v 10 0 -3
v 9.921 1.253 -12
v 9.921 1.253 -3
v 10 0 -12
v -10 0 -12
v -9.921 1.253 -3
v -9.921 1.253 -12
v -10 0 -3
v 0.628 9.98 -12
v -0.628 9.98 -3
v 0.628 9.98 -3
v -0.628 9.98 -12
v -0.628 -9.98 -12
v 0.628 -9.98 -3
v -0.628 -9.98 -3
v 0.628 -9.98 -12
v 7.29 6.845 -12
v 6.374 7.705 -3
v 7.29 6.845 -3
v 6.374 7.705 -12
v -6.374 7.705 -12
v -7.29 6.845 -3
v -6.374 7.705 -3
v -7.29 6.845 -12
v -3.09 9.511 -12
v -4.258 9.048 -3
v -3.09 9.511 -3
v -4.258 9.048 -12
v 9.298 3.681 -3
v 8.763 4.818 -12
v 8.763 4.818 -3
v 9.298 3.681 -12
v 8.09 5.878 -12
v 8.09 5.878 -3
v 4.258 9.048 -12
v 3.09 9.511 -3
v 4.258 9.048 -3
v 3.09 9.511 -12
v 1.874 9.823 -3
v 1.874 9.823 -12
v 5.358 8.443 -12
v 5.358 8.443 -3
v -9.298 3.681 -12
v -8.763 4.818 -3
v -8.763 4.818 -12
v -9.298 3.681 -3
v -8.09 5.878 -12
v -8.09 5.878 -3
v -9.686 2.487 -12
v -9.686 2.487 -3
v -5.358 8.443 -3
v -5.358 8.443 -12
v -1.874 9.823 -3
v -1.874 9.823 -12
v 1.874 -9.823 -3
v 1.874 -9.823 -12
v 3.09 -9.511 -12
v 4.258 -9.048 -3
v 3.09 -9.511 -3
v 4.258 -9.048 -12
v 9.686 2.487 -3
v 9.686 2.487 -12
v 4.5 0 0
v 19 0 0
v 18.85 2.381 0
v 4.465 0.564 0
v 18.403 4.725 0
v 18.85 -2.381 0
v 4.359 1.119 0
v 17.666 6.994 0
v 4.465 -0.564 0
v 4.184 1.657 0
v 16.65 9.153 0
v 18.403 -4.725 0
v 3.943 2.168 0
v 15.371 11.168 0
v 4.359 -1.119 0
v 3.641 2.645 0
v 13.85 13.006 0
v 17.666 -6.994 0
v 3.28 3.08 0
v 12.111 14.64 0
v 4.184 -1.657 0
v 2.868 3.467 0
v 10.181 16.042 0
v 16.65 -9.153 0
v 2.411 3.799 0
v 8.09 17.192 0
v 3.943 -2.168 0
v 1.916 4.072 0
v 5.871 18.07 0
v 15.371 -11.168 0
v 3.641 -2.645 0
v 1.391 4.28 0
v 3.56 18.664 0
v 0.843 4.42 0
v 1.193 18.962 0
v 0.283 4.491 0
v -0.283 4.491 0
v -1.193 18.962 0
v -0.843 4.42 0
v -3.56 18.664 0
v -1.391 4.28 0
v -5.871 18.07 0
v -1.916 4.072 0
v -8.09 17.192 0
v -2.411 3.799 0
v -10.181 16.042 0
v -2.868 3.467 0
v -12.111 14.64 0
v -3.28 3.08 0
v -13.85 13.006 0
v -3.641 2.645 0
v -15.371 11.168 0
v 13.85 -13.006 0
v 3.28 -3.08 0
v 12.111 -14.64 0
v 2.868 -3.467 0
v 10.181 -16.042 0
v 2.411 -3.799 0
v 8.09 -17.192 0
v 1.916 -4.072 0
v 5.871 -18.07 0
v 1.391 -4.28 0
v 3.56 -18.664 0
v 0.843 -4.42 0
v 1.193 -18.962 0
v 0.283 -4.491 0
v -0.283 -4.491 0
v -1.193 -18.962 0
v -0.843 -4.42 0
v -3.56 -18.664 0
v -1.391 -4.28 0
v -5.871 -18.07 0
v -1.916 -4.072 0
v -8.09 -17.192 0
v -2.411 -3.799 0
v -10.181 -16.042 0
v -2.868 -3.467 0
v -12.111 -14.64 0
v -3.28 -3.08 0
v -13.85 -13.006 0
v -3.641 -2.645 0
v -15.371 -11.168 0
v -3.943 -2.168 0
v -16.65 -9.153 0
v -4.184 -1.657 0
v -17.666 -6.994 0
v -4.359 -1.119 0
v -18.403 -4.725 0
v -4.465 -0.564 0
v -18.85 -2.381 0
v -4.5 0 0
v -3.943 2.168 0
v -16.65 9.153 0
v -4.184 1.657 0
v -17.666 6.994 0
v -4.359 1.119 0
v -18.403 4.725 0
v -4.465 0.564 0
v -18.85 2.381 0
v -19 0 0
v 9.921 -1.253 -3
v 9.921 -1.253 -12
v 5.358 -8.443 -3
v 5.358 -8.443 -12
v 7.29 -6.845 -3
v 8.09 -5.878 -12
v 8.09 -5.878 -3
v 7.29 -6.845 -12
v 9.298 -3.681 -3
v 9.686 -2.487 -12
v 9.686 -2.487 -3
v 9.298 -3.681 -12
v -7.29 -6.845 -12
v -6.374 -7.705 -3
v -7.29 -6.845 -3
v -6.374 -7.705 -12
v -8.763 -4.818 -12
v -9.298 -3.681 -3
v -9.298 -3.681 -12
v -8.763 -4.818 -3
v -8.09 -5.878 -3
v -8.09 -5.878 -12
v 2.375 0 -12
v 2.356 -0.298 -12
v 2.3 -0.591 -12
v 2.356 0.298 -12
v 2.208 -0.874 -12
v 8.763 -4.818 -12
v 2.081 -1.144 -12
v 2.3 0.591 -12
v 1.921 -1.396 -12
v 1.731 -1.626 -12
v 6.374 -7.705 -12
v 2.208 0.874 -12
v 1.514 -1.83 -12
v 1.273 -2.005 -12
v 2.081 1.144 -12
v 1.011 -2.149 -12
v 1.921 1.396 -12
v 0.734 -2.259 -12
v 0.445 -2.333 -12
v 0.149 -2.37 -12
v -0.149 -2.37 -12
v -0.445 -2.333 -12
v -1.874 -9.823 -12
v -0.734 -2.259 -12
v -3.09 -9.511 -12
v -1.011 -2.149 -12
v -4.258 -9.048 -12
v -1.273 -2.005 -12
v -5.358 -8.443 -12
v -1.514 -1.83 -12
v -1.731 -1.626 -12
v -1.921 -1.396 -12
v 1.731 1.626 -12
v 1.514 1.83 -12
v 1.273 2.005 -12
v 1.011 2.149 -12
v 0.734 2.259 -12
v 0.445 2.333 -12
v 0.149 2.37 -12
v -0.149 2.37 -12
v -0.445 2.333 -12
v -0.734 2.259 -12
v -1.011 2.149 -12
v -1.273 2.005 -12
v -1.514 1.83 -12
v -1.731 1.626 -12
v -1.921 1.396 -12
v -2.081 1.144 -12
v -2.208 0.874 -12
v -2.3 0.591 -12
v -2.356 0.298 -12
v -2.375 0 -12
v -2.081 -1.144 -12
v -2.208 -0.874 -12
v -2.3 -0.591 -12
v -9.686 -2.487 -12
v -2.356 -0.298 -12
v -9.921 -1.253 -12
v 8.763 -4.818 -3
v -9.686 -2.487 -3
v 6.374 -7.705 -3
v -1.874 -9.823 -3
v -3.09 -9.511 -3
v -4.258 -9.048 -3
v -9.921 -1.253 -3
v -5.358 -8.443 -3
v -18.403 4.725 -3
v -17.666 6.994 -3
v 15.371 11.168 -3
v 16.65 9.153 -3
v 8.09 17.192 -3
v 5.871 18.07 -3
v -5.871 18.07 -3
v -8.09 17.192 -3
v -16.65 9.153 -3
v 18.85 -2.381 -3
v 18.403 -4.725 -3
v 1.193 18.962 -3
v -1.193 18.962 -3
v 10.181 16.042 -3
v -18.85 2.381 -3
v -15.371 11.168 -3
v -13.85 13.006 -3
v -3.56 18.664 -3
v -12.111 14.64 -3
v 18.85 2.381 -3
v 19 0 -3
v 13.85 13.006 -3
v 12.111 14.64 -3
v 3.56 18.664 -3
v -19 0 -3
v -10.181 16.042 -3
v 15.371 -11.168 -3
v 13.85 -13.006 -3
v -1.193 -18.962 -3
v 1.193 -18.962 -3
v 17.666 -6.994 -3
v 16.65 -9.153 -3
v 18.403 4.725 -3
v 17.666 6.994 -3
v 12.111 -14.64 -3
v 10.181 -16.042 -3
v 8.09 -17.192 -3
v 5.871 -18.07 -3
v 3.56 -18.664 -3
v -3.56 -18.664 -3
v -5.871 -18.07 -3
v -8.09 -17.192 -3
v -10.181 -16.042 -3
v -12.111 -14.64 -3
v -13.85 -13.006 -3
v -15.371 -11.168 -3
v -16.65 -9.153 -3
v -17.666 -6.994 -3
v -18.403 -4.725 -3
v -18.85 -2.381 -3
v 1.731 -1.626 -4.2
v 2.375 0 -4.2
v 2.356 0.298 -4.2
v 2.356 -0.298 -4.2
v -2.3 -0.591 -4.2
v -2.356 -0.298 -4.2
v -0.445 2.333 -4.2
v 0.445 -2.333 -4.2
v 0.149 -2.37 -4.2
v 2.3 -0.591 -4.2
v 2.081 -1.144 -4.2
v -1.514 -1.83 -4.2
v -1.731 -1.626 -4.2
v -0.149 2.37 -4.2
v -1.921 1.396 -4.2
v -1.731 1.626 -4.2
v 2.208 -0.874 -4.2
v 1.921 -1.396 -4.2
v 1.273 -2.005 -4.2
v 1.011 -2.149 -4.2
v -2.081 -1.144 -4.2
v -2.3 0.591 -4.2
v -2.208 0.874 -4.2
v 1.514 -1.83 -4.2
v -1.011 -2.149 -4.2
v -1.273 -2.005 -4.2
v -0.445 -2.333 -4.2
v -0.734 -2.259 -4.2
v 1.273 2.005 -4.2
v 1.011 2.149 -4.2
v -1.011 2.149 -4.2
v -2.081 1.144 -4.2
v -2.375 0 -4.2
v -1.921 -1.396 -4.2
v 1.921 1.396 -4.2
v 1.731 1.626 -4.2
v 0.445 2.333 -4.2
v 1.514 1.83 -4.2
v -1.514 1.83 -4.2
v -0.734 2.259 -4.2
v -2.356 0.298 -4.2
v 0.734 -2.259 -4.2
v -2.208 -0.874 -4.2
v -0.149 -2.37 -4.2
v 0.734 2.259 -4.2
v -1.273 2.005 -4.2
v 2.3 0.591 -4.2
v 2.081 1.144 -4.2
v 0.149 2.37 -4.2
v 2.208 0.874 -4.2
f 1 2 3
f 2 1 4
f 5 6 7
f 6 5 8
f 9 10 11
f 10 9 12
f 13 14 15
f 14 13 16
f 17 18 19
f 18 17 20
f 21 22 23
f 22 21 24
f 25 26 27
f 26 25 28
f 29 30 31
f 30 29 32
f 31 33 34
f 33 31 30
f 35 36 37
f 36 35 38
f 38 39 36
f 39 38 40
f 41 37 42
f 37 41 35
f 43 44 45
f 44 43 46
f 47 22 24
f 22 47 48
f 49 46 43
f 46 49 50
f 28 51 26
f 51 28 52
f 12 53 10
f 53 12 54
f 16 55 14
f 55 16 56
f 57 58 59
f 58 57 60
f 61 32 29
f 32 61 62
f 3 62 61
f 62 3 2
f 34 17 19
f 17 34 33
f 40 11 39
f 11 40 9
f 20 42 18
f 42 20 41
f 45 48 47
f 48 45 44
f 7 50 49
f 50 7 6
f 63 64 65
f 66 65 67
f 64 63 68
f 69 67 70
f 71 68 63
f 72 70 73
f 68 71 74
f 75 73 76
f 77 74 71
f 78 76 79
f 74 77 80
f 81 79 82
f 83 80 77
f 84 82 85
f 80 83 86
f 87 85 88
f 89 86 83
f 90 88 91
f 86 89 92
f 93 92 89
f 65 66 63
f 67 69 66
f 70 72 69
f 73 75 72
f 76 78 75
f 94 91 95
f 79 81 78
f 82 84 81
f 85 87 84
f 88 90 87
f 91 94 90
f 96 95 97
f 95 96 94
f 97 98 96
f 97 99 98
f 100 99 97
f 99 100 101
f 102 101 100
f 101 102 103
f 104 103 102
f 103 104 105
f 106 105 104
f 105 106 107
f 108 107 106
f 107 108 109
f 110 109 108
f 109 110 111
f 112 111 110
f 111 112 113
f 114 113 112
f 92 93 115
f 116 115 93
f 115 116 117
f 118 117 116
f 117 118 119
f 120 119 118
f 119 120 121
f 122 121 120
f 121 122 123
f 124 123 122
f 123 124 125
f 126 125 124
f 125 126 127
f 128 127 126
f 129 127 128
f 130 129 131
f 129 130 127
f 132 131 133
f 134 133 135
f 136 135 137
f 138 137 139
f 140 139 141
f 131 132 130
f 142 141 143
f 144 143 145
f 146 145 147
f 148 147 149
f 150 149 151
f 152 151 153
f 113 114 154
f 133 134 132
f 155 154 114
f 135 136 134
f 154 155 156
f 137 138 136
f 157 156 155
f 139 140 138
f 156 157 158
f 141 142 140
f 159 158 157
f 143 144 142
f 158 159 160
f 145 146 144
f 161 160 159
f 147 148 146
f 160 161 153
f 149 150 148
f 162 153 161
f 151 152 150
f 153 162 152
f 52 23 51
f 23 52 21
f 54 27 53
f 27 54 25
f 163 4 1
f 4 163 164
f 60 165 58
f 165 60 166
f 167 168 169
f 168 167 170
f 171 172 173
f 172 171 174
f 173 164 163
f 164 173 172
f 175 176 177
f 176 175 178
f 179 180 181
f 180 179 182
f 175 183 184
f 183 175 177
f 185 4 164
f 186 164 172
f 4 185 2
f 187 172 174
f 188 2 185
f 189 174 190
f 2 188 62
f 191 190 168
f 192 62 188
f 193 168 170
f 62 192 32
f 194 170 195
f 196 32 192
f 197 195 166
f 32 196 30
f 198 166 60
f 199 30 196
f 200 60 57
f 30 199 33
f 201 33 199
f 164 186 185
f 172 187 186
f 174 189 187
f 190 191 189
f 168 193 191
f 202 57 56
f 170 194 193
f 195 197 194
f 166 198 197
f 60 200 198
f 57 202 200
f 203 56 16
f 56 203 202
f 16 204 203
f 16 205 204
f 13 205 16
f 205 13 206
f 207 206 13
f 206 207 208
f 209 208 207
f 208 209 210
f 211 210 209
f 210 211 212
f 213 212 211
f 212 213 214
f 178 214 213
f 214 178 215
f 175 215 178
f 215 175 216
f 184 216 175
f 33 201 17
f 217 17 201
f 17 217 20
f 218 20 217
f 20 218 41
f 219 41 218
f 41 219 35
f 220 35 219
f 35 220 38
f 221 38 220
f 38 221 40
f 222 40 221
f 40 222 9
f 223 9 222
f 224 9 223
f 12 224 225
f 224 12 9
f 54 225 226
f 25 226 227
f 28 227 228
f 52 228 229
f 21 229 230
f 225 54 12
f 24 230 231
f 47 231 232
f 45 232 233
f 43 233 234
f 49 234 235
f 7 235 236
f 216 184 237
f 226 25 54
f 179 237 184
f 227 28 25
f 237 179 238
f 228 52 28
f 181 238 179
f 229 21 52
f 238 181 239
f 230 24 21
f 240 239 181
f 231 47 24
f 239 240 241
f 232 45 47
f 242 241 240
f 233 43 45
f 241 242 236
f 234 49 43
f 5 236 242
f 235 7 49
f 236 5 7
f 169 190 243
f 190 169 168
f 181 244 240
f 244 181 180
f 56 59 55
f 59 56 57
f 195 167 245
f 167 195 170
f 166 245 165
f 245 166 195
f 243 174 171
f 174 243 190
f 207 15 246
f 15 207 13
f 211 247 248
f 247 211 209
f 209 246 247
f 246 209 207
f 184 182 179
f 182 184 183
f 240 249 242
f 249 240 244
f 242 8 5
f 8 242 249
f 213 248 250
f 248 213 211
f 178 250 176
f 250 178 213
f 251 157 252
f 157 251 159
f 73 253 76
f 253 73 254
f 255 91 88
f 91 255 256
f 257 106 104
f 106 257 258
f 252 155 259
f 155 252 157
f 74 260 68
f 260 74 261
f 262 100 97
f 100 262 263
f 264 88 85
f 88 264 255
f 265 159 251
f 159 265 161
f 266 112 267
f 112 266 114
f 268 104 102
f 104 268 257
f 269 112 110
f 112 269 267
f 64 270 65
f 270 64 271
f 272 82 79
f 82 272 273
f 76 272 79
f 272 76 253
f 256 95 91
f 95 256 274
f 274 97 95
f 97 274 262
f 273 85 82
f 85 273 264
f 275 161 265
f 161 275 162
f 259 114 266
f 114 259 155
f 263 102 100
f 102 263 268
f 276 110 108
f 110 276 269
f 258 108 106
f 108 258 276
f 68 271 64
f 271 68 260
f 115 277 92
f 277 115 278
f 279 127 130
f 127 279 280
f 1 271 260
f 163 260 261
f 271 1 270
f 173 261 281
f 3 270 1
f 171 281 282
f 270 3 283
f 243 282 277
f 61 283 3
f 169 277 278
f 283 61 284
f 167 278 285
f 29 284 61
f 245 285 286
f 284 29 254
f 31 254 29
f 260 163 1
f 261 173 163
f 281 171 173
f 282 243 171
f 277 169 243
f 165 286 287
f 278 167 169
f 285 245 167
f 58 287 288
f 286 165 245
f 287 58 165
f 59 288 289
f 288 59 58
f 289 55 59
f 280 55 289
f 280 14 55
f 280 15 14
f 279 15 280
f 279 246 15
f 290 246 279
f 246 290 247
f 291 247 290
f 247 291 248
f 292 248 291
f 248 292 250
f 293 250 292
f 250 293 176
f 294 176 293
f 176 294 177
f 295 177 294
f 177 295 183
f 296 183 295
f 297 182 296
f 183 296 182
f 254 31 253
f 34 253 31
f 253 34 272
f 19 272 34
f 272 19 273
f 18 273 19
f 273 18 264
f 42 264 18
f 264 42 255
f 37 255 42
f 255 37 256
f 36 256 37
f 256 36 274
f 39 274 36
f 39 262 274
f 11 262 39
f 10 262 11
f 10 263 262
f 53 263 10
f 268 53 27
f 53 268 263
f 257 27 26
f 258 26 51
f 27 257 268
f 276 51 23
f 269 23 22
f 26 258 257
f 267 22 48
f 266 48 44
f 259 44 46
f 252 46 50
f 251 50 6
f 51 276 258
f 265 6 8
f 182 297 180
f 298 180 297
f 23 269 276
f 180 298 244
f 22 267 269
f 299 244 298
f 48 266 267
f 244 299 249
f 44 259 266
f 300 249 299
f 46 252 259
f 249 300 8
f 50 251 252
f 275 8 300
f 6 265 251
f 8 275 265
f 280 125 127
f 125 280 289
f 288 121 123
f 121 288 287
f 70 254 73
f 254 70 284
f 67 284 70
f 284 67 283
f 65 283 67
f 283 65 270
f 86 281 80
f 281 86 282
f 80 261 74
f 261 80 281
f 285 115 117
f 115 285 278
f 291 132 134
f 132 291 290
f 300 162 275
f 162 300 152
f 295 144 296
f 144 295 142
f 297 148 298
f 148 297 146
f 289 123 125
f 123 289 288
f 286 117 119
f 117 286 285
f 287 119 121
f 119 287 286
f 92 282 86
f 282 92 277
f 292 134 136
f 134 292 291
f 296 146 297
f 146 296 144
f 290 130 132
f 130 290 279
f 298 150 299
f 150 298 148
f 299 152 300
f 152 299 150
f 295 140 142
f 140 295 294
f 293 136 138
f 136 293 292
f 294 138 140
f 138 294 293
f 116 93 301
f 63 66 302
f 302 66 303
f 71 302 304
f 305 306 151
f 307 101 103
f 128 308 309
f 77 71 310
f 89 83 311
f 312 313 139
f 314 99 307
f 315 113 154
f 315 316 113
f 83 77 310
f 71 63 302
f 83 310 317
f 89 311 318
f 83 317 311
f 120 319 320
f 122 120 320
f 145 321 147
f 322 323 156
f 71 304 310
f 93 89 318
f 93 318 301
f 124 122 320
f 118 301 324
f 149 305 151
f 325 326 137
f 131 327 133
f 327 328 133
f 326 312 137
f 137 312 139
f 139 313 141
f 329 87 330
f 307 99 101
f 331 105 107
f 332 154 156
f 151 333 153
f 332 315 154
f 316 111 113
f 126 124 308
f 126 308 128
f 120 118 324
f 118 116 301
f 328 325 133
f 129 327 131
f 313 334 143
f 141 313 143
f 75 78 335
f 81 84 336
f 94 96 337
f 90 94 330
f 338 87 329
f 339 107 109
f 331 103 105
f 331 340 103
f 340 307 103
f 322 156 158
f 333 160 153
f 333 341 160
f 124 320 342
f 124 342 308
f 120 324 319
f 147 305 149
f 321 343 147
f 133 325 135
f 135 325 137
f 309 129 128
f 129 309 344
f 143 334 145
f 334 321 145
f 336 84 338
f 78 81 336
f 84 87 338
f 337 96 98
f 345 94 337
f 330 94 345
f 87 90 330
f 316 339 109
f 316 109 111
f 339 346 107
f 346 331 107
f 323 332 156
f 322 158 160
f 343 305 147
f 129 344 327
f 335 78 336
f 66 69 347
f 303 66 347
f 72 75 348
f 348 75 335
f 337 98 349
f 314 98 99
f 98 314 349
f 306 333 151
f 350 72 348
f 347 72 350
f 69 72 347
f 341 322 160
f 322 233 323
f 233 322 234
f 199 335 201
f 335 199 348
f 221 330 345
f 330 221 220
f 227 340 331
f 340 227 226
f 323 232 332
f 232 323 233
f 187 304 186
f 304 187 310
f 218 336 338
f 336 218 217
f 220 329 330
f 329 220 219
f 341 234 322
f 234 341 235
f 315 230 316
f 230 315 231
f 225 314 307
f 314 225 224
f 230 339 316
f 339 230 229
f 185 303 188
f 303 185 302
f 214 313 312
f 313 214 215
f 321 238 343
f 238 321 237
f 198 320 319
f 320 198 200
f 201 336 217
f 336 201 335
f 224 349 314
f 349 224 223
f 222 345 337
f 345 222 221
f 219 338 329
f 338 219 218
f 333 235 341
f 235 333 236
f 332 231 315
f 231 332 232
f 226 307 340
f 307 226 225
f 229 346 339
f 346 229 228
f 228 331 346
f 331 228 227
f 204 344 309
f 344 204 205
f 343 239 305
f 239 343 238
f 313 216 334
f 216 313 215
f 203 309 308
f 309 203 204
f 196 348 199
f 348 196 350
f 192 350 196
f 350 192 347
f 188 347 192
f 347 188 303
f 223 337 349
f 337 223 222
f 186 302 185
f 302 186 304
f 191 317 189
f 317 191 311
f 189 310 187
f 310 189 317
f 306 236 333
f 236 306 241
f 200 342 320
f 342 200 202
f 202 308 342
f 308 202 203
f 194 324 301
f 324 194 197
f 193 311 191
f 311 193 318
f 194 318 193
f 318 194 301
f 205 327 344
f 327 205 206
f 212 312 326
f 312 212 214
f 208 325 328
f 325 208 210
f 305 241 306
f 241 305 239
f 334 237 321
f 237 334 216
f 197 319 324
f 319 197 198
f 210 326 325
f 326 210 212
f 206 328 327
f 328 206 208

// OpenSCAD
$fn = 50;


difference() {
	union() {
		translate(v = [0, 0, -12.0000000000]) {
			cylinder(h = 12, r = 10.0000000000);
		}
		translate(v = [0, 0, -3.0000000000]) {
			cylinder(h = 3, r = 19.0000000000);
		}
	}
	union() {
		translate(v = [0, 0, 0]) {
			rotate(a = [0, 0, 0]) {
				difference() {
					union() {
						#translate(v = [0, 0, -12.0000000000]) {
							cylinder(h = 12, r = 2.2500000000);
						}
						#translate(v = [0, 0, -4.2000000000]) {
							cylinder(h = 4.2000000000, r = 10.0000000000, r1 = 2.3750000000, r2 = 4.5000000000);
						}
						#translate(v = [0, 0, -12.0000000000]) {
							cylinder(h = 12, r = 2.3750000000);
						}
						#translate(v = [0, 0, -12.0000000000]) {
							cylinder(h = 12, r = 2.2500000000);
						}
					}
					union();
				}
			}
		}
	}
}
